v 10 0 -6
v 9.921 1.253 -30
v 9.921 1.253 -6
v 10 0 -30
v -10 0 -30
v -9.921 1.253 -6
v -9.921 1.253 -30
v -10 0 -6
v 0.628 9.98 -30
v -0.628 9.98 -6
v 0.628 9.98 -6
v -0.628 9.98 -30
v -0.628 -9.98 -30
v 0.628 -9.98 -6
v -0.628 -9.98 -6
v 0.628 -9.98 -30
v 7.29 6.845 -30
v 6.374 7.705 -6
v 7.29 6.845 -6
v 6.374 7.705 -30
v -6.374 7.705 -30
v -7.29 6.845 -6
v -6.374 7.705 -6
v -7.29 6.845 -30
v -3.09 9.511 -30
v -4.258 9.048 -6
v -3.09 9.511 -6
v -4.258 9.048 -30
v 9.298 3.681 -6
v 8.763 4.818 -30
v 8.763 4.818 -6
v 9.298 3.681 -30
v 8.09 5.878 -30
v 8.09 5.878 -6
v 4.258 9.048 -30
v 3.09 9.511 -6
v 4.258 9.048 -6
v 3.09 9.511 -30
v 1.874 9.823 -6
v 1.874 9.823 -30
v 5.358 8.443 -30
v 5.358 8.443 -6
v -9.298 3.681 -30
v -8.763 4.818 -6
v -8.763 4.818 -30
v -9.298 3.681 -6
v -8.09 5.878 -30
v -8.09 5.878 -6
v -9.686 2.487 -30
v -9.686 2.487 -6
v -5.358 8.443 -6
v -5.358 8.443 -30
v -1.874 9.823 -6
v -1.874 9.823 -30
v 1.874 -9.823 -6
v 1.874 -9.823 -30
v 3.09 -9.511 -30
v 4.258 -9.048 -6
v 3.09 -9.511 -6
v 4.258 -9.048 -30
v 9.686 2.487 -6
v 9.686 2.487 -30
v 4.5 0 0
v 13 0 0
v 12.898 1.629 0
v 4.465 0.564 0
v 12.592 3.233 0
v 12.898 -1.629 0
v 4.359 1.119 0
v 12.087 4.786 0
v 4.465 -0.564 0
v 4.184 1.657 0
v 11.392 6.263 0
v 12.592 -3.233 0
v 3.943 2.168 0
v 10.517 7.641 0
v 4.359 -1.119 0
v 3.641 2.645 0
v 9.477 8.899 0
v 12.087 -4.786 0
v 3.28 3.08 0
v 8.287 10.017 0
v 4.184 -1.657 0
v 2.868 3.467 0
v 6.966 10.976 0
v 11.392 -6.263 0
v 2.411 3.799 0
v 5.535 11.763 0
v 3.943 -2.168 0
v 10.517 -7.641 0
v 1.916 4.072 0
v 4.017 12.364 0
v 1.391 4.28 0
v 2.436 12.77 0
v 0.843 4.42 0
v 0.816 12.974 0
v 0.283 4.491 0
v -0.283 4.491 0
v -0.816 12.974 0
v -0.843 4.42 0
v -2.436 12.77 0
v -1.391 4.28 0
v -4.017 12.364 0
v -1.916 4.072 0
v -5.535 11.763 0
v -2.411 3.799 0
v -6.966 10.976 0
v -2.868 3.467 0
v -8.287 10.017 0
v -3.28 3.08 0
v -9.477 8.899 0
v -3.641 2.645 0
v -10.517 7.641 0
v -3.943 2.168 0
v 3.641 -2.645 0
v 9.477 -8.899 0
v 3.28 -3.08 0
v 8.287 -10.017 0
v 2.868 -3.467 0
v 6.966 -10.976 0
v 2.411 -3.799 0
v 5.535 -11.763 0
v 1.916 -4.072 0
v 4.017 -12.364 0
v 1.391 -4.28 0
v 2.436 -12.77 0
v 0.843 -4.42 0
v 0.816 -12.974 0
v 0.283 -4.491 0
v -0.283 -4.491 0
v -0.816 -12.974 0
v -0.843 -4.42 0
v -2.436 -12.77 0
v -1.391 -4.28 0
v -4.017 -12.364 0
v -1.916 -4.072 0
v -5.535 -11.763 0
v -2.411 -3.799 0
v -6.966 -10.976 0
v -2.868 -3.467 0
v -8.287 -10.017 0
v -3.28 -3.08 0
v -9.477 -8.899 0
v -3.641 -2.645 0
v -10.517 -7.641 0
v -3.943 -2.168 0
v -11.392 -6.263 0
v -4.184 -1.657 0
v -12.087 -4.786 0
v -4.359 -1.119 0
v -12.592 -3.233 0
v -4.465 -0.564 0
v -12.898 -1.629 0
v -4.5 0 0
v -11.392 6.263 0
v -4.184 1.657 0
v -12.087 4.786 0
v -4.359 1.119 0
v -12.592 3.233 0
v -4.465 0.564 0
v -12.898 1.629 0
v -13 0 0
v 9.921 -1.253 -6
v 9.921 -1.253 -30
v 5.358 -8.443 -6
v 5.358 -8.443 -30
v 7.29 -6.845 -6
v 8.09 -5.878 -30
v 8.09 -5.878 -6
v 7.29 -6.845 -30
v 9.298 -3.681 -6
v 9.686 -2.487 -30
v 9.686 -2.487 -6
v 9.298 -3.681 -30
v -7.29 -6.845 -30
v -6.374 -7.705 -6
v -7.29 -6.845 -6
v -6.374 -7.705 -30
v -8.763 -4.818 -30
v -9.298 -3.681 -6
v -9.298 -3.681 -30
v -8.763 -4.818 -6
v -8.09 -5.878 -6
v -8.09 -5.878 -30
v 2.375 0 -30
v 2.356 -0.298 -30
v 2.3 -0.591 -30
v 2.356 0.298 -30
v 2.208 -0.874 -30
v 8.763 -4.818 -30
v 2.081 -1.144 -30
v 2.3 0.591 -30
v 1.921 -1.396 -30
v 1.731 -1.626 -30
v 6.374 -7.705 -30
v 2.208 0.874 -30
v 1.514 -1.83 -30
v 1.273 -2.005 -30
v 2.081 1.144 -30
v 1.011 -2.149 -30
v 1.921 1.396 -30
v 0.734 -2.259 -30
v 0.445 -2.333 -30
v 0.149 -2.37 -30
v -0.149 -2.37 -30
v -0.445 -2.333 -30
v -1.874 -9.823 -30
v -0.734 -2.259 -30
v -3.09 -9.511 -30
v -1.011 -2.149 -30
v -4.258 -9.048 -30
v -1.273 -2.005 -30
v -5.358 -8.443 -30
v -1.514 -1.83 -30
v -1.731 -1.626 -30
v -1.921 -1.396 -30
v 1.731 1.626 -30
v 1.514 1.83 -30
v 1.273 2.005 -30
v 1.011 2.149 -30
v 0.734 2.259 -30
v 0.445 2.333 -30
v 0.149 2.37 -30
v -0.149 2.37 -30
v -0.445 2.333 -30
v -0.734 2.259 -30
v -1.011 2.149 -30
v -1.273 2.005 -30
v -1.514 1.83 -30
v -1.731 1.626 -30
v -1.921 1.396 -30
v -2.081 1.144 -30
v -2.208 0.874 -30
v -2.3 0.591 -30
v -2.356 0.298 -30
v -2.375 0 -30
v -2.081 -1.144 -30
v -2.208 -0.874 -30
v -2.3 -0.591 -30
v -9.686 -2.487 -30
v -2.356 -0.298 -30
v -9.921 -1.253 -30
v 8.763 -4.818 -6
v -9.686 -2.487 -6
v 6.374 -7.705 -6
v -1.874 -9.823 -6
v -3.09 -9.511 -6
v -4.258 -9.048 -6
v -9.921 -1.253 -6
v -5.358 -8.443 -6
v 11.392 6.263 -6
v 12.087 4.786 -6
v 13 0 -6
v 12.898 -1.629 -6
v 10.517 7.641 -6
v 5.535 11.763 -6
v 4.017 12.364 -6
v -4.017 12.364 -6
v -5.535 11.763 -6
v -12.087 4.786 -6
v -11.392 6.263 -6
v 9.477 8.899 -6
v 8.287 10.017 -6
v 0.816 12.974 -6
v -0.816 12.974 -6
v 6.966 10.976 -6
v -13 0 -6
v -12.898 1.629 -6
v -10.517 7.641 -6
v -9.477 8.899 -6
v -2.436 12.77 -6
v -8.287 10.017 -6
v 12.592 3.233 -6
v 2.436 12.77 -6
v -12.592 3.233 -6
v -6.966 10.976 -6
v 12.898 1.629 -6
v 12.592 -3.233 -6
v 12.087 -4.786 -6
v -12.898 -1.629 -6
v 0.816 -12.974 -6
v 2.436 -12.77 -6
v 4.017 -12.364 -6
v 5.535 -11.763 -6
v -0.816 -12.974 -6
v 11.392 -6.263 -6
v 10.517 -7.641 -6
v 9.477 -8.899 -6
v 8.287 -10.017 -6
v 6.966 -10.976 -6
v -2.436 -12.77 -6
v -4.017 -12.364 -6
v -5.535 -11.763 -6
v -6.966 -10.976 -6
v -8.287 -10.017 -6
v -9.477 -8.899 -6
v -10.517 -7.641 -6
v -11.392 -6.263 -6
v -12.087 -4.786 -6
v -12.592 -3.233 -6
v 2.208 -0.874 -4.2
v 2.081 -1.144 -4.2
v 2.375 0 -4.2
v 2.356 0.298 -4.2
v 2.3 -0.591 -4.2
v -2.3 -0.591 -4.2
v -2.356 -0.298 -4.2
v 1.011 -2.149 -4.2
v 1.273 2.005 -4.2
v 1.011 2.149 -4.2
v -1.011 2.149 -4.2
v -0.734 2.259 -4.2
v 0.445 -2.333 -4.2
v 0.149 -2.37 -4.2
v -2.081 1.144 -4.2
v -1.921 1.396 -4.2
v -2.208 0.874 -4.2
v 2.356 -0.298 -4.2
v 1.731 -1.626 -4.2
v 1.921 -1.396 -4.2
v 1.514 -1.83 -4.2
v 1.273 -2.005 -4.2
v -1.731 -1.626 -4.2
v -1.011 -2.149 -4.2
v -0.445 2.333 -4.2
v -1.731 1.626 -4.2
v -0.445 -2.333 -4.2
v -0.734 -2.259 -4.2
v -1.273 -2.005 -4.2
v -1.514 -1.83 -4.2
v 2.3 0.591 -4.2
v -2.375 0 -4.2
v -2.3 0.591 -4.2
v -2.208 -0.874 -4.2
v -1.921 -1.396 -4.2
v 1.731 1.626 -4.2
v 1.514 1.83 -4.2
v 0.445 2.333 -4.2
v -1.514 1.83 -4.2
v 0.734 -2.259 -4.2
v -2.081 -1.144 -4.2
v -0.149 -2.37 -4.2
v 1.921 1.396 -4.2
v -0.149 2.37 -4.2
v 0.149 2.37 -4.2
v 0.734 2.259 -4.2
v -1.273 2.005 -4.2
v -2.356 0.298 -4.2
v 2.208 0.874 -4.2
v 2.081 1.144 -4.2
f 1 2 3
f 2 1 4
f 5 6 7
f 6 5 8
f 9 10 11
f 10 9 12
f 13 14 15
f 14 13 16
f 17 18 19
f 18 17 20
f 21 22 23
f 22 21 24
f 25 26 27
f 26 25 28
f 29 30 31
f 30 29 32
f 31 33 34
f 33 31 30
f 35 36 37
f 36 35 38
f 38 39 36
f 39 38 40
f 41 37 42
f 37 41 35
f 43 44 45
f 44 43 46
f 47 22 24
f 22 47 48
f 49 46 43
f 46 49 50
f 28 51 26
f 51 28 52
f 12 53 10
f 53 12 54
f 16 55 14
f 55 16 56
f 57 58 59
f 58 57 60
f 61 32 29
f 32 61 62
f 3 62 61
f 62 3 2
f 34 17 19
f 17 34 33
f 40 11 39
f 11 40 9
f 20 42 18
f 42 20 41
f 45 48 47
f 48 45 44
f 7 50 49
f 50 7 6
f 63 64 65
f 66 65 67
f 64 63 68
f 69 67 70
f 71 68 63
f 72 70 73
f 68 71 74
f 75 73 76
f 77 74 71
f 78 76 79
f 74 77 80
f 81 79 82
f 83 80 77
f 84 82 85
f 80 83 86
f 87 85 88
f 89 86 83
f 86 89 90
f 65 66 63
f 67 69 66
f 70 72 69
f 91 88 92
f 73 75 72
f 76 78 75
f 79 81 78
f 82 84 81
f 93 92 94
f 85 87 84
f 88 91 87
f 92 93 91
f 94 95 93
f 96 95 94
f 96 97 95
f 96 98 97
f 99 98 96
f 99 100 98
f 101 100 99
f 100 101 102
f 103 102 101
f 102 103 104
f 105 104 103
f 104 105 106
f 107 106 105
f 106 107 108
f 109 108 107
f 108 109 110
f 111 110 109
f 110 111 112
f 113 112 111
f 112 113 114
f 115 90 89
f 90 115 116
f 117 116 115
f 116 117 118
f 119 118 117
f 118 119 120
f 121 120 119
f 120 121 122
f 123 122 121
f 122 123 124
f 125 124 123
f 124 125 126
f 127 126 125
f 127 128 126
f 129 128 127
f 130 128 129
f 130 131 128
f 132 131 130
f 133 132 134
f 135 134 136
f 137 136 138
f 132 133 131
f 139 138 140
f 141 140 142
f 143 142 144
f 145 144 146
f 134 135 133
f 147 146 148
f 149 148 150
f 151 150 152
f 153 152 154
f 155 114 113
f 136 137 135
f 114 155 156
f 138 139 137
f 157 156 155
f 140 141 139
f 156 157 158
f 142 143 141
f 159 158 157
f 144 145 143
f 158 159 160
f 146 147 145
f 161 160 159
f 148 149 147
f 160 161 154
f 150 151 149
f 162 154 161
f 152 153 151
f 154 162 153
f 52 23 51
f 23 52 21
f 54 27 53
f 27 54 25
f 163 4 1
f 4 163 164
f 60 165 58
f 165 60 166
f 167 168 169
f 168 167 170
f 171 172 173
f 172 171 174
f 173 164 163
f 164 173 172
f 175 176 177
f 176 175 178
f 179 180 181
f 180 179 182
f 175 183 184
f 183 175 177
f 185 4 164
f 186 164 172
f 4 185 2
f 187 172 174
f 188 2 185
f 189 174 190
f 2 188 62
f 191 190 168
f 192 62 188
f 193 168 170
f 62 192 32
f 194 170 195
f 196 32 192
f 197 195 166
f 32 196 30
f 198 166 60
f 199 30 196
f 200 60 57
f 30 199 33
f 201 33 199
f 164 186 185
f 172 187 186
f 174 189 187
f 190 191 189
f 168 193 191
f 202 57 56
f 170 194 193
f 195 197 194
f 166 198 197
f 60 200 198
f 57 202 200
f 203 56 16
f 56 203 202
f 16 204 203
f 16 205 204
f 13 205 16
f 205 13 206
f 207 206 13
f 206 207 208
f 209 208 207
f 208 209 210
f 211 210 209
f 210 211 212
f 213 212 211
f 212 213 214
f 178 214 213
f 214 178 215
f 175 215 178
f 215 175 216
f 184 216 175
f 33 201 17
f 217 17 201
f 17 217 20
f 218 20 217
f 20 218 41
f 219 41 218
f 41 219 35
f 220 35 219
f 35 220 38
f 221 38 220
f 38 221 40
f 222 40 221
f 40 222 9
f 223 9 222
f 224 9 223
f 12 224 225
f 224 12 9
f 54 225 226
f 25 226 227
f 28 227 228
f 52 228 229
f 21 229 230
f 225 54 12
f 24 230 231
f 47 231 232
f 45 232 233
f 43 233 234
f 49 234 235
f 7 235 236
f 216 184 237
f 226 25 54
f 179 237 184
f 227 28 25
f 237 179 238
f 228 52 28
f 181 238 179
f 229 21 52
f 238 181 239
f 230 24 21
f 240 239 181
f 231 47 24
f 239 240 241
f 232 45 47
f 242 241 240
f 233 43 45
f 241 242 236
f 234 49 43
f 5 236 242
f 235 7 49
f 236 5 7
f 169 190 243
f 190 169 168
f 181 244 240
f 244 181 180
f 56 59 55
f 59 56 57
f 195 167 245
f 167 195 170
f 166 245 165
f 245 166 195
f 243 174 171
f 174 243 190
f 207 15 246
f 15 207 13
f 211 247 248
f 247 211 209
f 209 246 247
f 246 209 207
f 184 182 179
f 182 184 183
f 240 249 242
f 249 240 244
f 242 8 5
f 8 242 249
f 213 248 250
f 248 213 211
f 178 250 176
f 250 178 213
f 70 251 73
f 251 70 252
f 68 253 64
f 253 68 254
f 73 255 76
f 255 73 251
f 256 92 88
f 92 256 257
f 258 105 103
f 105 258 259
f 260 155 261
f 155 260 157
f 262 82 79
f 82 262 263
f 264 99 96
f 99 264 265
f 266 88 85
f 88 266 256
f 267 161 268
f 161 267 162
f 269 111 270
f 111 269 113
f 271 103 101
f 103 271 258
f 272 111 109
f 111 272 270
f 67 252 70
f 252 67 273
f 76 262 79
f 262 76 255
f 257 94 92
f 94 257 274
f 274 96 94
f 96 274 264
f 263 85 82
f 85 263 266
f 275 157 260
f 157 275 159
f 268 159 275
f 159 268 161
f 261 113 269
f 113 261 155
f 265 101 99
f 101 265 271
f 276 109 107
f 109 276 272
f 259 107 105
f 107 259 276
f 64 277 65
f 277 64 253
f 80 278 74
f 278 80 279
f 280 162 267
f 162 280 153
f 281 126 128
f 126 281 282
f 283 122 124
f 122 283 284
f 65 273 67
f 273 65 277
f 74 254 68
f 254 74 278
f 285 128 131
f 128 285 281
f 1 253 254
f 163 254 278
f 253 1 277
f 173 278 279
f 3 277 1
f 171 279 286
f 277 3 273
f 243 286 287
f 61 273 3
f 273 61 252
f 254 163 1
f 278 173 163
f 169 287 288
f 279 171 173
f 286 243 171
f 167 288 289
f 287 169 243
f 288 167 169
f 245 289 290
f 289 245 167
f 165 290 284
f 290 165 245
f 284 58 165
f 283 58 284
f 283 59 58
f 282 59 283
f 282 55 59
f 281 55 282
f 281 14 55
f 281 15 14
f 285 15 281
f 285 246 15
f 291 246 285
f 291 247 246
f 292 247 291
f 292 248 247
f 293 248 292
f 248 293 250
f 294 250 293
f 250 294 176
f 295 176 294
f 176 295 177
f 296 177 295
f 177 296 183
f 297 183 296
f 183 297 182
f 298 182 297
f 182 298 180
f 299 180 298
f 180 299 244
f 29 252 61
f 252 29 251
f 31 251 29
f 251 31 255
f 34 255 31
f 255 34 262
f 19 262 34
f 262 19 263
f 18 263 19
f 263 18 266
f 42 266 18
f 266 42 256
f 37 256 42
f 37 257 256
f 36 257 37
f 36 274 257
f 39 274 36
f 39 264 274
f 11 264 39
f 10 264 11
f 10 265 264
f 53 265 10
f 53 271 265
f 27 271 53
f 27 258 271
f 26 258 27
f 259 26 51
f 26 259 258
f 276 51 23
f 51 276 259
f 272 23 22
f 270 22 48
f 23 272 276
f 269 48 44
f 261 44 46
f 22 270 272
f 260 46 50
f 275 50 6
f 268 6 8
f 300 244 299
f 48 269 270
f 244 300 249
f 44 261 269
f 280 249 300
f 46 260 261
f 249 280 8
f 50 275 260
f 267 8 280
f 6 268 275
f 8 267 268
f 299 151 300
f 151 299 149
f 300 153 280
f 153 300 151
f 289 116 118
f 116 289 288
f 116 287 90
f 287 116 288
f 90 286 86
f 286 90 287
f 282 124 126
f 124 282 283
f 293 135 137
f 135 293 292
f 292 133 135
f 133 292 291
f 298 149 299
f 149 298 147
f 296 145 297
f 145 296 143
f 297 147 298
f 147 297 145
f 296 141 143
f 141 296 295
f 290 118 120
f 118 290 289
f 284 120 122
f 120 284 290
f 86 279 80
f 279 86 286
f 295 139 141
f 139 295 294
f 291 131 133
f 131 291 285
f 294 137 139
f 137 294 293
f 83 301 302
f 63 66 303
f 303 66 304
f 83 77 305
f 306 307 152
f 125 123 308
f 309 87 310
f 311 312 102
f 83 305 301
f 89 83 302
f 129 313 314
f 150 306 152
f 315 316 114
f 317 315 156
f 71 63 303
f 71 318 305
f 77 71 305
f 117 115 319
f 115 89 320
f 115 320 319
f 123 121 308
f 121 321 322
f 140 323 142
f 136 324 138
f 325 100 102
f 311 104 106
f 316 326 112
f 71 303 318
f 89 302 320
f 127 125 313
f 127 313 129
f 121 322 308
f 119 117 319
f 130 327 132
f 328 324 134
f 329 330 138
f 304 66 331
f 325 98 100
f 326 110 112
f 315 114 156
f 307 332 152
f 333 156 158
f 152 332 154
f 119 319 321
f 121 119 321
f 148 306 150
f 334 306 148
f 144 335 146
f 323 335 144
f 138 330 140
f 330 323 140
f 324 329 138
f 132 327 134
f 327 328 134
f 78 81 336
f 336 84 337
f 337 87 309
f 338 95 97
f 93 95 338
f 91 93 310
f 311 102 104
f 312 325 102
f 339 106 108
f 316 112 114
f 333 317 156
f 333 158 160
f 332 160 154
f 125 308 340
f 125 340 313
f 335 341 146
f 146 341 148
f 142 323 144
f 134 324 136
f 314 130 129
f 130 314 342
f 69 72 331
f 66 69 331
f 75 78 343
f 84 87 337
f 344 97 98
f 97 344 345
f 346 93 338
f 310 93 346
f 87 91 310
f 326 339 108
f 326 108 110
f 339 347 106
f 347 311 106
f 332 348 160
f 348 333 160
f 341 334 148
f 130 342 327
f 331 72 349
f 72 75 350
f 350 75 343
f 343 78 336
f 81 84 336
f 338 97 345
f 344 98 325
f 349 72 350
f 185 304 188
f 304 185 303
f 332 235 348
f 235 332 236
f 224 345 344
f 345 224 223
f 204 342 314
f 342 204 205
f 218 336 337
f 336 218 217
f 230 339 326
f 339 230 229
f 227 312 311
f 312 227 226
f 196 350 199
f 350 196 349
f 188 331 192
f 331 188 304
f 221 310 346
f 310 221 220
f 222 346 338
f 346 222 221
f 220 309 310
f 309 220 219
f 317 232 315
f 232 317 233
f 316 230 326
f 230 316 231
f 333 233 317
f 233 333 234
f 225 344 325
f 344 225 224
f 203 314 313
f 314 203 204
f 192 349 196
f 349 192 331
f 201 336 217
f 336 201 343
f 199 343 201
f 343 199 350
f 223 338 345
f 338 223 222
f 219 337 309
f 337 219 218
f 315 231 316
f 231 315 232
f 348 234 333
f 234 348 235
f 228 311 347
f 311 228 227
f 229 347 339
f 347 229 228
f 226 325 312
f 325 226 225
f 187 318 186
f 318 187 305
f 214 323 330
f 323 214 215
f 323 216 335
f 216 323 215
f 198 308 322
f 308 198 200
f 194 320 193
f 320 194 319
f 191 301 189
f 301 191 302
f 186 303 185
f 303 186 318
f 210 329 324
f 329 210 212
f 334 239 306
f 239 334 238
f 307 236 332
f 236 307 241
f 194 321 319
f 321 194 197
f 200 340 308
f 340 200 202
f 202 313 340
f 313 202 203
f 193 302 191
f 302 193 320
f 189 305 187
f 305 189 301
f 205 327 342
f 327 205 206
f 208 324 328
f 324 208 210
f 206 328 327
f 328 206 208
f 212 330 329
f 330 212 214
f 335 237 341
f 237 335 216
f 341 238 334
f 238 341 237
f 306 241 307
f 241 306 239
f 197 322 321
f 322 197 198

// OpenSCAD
$fn = 50;


difference() {
	union() {
		translate(v = [0, 0, -30.0000000000]) {
			cylinder(h = 30, r = 10.0000000000);
		}
		translate(v = [0, 0, -6.0000000000]) {
			cylinder(h = 6, r = 13.0000000000);
		}
	}
	union() {
		translate(v = [0, 0, 0]) {
			rotate(a = [0, 0, 0]) {
				difference() {
					union() {
						#translate(v = [0, 0, -30.0000000000]) {
							cylinder(h = 30, r = 2.2500000000);
						}
						#translate(v = [0, 0, -4.2000000000]) {
							cylinder(h = 4.2000000000, r = 10.0000000000, r1 = 2.3750000000, r2 = 4.5000000000);
						}
						#translate(v = [0, 0, -30.0000000000]) {
							cylinder(h = 30, r = 2.3750000000);
						}
						#translate(v = [0, 0, -30.0000000000]) {
							cylinder(h = 30, r = 2.2500000000);
						}
					}
					union();
				}
			}
		}
	}
}
